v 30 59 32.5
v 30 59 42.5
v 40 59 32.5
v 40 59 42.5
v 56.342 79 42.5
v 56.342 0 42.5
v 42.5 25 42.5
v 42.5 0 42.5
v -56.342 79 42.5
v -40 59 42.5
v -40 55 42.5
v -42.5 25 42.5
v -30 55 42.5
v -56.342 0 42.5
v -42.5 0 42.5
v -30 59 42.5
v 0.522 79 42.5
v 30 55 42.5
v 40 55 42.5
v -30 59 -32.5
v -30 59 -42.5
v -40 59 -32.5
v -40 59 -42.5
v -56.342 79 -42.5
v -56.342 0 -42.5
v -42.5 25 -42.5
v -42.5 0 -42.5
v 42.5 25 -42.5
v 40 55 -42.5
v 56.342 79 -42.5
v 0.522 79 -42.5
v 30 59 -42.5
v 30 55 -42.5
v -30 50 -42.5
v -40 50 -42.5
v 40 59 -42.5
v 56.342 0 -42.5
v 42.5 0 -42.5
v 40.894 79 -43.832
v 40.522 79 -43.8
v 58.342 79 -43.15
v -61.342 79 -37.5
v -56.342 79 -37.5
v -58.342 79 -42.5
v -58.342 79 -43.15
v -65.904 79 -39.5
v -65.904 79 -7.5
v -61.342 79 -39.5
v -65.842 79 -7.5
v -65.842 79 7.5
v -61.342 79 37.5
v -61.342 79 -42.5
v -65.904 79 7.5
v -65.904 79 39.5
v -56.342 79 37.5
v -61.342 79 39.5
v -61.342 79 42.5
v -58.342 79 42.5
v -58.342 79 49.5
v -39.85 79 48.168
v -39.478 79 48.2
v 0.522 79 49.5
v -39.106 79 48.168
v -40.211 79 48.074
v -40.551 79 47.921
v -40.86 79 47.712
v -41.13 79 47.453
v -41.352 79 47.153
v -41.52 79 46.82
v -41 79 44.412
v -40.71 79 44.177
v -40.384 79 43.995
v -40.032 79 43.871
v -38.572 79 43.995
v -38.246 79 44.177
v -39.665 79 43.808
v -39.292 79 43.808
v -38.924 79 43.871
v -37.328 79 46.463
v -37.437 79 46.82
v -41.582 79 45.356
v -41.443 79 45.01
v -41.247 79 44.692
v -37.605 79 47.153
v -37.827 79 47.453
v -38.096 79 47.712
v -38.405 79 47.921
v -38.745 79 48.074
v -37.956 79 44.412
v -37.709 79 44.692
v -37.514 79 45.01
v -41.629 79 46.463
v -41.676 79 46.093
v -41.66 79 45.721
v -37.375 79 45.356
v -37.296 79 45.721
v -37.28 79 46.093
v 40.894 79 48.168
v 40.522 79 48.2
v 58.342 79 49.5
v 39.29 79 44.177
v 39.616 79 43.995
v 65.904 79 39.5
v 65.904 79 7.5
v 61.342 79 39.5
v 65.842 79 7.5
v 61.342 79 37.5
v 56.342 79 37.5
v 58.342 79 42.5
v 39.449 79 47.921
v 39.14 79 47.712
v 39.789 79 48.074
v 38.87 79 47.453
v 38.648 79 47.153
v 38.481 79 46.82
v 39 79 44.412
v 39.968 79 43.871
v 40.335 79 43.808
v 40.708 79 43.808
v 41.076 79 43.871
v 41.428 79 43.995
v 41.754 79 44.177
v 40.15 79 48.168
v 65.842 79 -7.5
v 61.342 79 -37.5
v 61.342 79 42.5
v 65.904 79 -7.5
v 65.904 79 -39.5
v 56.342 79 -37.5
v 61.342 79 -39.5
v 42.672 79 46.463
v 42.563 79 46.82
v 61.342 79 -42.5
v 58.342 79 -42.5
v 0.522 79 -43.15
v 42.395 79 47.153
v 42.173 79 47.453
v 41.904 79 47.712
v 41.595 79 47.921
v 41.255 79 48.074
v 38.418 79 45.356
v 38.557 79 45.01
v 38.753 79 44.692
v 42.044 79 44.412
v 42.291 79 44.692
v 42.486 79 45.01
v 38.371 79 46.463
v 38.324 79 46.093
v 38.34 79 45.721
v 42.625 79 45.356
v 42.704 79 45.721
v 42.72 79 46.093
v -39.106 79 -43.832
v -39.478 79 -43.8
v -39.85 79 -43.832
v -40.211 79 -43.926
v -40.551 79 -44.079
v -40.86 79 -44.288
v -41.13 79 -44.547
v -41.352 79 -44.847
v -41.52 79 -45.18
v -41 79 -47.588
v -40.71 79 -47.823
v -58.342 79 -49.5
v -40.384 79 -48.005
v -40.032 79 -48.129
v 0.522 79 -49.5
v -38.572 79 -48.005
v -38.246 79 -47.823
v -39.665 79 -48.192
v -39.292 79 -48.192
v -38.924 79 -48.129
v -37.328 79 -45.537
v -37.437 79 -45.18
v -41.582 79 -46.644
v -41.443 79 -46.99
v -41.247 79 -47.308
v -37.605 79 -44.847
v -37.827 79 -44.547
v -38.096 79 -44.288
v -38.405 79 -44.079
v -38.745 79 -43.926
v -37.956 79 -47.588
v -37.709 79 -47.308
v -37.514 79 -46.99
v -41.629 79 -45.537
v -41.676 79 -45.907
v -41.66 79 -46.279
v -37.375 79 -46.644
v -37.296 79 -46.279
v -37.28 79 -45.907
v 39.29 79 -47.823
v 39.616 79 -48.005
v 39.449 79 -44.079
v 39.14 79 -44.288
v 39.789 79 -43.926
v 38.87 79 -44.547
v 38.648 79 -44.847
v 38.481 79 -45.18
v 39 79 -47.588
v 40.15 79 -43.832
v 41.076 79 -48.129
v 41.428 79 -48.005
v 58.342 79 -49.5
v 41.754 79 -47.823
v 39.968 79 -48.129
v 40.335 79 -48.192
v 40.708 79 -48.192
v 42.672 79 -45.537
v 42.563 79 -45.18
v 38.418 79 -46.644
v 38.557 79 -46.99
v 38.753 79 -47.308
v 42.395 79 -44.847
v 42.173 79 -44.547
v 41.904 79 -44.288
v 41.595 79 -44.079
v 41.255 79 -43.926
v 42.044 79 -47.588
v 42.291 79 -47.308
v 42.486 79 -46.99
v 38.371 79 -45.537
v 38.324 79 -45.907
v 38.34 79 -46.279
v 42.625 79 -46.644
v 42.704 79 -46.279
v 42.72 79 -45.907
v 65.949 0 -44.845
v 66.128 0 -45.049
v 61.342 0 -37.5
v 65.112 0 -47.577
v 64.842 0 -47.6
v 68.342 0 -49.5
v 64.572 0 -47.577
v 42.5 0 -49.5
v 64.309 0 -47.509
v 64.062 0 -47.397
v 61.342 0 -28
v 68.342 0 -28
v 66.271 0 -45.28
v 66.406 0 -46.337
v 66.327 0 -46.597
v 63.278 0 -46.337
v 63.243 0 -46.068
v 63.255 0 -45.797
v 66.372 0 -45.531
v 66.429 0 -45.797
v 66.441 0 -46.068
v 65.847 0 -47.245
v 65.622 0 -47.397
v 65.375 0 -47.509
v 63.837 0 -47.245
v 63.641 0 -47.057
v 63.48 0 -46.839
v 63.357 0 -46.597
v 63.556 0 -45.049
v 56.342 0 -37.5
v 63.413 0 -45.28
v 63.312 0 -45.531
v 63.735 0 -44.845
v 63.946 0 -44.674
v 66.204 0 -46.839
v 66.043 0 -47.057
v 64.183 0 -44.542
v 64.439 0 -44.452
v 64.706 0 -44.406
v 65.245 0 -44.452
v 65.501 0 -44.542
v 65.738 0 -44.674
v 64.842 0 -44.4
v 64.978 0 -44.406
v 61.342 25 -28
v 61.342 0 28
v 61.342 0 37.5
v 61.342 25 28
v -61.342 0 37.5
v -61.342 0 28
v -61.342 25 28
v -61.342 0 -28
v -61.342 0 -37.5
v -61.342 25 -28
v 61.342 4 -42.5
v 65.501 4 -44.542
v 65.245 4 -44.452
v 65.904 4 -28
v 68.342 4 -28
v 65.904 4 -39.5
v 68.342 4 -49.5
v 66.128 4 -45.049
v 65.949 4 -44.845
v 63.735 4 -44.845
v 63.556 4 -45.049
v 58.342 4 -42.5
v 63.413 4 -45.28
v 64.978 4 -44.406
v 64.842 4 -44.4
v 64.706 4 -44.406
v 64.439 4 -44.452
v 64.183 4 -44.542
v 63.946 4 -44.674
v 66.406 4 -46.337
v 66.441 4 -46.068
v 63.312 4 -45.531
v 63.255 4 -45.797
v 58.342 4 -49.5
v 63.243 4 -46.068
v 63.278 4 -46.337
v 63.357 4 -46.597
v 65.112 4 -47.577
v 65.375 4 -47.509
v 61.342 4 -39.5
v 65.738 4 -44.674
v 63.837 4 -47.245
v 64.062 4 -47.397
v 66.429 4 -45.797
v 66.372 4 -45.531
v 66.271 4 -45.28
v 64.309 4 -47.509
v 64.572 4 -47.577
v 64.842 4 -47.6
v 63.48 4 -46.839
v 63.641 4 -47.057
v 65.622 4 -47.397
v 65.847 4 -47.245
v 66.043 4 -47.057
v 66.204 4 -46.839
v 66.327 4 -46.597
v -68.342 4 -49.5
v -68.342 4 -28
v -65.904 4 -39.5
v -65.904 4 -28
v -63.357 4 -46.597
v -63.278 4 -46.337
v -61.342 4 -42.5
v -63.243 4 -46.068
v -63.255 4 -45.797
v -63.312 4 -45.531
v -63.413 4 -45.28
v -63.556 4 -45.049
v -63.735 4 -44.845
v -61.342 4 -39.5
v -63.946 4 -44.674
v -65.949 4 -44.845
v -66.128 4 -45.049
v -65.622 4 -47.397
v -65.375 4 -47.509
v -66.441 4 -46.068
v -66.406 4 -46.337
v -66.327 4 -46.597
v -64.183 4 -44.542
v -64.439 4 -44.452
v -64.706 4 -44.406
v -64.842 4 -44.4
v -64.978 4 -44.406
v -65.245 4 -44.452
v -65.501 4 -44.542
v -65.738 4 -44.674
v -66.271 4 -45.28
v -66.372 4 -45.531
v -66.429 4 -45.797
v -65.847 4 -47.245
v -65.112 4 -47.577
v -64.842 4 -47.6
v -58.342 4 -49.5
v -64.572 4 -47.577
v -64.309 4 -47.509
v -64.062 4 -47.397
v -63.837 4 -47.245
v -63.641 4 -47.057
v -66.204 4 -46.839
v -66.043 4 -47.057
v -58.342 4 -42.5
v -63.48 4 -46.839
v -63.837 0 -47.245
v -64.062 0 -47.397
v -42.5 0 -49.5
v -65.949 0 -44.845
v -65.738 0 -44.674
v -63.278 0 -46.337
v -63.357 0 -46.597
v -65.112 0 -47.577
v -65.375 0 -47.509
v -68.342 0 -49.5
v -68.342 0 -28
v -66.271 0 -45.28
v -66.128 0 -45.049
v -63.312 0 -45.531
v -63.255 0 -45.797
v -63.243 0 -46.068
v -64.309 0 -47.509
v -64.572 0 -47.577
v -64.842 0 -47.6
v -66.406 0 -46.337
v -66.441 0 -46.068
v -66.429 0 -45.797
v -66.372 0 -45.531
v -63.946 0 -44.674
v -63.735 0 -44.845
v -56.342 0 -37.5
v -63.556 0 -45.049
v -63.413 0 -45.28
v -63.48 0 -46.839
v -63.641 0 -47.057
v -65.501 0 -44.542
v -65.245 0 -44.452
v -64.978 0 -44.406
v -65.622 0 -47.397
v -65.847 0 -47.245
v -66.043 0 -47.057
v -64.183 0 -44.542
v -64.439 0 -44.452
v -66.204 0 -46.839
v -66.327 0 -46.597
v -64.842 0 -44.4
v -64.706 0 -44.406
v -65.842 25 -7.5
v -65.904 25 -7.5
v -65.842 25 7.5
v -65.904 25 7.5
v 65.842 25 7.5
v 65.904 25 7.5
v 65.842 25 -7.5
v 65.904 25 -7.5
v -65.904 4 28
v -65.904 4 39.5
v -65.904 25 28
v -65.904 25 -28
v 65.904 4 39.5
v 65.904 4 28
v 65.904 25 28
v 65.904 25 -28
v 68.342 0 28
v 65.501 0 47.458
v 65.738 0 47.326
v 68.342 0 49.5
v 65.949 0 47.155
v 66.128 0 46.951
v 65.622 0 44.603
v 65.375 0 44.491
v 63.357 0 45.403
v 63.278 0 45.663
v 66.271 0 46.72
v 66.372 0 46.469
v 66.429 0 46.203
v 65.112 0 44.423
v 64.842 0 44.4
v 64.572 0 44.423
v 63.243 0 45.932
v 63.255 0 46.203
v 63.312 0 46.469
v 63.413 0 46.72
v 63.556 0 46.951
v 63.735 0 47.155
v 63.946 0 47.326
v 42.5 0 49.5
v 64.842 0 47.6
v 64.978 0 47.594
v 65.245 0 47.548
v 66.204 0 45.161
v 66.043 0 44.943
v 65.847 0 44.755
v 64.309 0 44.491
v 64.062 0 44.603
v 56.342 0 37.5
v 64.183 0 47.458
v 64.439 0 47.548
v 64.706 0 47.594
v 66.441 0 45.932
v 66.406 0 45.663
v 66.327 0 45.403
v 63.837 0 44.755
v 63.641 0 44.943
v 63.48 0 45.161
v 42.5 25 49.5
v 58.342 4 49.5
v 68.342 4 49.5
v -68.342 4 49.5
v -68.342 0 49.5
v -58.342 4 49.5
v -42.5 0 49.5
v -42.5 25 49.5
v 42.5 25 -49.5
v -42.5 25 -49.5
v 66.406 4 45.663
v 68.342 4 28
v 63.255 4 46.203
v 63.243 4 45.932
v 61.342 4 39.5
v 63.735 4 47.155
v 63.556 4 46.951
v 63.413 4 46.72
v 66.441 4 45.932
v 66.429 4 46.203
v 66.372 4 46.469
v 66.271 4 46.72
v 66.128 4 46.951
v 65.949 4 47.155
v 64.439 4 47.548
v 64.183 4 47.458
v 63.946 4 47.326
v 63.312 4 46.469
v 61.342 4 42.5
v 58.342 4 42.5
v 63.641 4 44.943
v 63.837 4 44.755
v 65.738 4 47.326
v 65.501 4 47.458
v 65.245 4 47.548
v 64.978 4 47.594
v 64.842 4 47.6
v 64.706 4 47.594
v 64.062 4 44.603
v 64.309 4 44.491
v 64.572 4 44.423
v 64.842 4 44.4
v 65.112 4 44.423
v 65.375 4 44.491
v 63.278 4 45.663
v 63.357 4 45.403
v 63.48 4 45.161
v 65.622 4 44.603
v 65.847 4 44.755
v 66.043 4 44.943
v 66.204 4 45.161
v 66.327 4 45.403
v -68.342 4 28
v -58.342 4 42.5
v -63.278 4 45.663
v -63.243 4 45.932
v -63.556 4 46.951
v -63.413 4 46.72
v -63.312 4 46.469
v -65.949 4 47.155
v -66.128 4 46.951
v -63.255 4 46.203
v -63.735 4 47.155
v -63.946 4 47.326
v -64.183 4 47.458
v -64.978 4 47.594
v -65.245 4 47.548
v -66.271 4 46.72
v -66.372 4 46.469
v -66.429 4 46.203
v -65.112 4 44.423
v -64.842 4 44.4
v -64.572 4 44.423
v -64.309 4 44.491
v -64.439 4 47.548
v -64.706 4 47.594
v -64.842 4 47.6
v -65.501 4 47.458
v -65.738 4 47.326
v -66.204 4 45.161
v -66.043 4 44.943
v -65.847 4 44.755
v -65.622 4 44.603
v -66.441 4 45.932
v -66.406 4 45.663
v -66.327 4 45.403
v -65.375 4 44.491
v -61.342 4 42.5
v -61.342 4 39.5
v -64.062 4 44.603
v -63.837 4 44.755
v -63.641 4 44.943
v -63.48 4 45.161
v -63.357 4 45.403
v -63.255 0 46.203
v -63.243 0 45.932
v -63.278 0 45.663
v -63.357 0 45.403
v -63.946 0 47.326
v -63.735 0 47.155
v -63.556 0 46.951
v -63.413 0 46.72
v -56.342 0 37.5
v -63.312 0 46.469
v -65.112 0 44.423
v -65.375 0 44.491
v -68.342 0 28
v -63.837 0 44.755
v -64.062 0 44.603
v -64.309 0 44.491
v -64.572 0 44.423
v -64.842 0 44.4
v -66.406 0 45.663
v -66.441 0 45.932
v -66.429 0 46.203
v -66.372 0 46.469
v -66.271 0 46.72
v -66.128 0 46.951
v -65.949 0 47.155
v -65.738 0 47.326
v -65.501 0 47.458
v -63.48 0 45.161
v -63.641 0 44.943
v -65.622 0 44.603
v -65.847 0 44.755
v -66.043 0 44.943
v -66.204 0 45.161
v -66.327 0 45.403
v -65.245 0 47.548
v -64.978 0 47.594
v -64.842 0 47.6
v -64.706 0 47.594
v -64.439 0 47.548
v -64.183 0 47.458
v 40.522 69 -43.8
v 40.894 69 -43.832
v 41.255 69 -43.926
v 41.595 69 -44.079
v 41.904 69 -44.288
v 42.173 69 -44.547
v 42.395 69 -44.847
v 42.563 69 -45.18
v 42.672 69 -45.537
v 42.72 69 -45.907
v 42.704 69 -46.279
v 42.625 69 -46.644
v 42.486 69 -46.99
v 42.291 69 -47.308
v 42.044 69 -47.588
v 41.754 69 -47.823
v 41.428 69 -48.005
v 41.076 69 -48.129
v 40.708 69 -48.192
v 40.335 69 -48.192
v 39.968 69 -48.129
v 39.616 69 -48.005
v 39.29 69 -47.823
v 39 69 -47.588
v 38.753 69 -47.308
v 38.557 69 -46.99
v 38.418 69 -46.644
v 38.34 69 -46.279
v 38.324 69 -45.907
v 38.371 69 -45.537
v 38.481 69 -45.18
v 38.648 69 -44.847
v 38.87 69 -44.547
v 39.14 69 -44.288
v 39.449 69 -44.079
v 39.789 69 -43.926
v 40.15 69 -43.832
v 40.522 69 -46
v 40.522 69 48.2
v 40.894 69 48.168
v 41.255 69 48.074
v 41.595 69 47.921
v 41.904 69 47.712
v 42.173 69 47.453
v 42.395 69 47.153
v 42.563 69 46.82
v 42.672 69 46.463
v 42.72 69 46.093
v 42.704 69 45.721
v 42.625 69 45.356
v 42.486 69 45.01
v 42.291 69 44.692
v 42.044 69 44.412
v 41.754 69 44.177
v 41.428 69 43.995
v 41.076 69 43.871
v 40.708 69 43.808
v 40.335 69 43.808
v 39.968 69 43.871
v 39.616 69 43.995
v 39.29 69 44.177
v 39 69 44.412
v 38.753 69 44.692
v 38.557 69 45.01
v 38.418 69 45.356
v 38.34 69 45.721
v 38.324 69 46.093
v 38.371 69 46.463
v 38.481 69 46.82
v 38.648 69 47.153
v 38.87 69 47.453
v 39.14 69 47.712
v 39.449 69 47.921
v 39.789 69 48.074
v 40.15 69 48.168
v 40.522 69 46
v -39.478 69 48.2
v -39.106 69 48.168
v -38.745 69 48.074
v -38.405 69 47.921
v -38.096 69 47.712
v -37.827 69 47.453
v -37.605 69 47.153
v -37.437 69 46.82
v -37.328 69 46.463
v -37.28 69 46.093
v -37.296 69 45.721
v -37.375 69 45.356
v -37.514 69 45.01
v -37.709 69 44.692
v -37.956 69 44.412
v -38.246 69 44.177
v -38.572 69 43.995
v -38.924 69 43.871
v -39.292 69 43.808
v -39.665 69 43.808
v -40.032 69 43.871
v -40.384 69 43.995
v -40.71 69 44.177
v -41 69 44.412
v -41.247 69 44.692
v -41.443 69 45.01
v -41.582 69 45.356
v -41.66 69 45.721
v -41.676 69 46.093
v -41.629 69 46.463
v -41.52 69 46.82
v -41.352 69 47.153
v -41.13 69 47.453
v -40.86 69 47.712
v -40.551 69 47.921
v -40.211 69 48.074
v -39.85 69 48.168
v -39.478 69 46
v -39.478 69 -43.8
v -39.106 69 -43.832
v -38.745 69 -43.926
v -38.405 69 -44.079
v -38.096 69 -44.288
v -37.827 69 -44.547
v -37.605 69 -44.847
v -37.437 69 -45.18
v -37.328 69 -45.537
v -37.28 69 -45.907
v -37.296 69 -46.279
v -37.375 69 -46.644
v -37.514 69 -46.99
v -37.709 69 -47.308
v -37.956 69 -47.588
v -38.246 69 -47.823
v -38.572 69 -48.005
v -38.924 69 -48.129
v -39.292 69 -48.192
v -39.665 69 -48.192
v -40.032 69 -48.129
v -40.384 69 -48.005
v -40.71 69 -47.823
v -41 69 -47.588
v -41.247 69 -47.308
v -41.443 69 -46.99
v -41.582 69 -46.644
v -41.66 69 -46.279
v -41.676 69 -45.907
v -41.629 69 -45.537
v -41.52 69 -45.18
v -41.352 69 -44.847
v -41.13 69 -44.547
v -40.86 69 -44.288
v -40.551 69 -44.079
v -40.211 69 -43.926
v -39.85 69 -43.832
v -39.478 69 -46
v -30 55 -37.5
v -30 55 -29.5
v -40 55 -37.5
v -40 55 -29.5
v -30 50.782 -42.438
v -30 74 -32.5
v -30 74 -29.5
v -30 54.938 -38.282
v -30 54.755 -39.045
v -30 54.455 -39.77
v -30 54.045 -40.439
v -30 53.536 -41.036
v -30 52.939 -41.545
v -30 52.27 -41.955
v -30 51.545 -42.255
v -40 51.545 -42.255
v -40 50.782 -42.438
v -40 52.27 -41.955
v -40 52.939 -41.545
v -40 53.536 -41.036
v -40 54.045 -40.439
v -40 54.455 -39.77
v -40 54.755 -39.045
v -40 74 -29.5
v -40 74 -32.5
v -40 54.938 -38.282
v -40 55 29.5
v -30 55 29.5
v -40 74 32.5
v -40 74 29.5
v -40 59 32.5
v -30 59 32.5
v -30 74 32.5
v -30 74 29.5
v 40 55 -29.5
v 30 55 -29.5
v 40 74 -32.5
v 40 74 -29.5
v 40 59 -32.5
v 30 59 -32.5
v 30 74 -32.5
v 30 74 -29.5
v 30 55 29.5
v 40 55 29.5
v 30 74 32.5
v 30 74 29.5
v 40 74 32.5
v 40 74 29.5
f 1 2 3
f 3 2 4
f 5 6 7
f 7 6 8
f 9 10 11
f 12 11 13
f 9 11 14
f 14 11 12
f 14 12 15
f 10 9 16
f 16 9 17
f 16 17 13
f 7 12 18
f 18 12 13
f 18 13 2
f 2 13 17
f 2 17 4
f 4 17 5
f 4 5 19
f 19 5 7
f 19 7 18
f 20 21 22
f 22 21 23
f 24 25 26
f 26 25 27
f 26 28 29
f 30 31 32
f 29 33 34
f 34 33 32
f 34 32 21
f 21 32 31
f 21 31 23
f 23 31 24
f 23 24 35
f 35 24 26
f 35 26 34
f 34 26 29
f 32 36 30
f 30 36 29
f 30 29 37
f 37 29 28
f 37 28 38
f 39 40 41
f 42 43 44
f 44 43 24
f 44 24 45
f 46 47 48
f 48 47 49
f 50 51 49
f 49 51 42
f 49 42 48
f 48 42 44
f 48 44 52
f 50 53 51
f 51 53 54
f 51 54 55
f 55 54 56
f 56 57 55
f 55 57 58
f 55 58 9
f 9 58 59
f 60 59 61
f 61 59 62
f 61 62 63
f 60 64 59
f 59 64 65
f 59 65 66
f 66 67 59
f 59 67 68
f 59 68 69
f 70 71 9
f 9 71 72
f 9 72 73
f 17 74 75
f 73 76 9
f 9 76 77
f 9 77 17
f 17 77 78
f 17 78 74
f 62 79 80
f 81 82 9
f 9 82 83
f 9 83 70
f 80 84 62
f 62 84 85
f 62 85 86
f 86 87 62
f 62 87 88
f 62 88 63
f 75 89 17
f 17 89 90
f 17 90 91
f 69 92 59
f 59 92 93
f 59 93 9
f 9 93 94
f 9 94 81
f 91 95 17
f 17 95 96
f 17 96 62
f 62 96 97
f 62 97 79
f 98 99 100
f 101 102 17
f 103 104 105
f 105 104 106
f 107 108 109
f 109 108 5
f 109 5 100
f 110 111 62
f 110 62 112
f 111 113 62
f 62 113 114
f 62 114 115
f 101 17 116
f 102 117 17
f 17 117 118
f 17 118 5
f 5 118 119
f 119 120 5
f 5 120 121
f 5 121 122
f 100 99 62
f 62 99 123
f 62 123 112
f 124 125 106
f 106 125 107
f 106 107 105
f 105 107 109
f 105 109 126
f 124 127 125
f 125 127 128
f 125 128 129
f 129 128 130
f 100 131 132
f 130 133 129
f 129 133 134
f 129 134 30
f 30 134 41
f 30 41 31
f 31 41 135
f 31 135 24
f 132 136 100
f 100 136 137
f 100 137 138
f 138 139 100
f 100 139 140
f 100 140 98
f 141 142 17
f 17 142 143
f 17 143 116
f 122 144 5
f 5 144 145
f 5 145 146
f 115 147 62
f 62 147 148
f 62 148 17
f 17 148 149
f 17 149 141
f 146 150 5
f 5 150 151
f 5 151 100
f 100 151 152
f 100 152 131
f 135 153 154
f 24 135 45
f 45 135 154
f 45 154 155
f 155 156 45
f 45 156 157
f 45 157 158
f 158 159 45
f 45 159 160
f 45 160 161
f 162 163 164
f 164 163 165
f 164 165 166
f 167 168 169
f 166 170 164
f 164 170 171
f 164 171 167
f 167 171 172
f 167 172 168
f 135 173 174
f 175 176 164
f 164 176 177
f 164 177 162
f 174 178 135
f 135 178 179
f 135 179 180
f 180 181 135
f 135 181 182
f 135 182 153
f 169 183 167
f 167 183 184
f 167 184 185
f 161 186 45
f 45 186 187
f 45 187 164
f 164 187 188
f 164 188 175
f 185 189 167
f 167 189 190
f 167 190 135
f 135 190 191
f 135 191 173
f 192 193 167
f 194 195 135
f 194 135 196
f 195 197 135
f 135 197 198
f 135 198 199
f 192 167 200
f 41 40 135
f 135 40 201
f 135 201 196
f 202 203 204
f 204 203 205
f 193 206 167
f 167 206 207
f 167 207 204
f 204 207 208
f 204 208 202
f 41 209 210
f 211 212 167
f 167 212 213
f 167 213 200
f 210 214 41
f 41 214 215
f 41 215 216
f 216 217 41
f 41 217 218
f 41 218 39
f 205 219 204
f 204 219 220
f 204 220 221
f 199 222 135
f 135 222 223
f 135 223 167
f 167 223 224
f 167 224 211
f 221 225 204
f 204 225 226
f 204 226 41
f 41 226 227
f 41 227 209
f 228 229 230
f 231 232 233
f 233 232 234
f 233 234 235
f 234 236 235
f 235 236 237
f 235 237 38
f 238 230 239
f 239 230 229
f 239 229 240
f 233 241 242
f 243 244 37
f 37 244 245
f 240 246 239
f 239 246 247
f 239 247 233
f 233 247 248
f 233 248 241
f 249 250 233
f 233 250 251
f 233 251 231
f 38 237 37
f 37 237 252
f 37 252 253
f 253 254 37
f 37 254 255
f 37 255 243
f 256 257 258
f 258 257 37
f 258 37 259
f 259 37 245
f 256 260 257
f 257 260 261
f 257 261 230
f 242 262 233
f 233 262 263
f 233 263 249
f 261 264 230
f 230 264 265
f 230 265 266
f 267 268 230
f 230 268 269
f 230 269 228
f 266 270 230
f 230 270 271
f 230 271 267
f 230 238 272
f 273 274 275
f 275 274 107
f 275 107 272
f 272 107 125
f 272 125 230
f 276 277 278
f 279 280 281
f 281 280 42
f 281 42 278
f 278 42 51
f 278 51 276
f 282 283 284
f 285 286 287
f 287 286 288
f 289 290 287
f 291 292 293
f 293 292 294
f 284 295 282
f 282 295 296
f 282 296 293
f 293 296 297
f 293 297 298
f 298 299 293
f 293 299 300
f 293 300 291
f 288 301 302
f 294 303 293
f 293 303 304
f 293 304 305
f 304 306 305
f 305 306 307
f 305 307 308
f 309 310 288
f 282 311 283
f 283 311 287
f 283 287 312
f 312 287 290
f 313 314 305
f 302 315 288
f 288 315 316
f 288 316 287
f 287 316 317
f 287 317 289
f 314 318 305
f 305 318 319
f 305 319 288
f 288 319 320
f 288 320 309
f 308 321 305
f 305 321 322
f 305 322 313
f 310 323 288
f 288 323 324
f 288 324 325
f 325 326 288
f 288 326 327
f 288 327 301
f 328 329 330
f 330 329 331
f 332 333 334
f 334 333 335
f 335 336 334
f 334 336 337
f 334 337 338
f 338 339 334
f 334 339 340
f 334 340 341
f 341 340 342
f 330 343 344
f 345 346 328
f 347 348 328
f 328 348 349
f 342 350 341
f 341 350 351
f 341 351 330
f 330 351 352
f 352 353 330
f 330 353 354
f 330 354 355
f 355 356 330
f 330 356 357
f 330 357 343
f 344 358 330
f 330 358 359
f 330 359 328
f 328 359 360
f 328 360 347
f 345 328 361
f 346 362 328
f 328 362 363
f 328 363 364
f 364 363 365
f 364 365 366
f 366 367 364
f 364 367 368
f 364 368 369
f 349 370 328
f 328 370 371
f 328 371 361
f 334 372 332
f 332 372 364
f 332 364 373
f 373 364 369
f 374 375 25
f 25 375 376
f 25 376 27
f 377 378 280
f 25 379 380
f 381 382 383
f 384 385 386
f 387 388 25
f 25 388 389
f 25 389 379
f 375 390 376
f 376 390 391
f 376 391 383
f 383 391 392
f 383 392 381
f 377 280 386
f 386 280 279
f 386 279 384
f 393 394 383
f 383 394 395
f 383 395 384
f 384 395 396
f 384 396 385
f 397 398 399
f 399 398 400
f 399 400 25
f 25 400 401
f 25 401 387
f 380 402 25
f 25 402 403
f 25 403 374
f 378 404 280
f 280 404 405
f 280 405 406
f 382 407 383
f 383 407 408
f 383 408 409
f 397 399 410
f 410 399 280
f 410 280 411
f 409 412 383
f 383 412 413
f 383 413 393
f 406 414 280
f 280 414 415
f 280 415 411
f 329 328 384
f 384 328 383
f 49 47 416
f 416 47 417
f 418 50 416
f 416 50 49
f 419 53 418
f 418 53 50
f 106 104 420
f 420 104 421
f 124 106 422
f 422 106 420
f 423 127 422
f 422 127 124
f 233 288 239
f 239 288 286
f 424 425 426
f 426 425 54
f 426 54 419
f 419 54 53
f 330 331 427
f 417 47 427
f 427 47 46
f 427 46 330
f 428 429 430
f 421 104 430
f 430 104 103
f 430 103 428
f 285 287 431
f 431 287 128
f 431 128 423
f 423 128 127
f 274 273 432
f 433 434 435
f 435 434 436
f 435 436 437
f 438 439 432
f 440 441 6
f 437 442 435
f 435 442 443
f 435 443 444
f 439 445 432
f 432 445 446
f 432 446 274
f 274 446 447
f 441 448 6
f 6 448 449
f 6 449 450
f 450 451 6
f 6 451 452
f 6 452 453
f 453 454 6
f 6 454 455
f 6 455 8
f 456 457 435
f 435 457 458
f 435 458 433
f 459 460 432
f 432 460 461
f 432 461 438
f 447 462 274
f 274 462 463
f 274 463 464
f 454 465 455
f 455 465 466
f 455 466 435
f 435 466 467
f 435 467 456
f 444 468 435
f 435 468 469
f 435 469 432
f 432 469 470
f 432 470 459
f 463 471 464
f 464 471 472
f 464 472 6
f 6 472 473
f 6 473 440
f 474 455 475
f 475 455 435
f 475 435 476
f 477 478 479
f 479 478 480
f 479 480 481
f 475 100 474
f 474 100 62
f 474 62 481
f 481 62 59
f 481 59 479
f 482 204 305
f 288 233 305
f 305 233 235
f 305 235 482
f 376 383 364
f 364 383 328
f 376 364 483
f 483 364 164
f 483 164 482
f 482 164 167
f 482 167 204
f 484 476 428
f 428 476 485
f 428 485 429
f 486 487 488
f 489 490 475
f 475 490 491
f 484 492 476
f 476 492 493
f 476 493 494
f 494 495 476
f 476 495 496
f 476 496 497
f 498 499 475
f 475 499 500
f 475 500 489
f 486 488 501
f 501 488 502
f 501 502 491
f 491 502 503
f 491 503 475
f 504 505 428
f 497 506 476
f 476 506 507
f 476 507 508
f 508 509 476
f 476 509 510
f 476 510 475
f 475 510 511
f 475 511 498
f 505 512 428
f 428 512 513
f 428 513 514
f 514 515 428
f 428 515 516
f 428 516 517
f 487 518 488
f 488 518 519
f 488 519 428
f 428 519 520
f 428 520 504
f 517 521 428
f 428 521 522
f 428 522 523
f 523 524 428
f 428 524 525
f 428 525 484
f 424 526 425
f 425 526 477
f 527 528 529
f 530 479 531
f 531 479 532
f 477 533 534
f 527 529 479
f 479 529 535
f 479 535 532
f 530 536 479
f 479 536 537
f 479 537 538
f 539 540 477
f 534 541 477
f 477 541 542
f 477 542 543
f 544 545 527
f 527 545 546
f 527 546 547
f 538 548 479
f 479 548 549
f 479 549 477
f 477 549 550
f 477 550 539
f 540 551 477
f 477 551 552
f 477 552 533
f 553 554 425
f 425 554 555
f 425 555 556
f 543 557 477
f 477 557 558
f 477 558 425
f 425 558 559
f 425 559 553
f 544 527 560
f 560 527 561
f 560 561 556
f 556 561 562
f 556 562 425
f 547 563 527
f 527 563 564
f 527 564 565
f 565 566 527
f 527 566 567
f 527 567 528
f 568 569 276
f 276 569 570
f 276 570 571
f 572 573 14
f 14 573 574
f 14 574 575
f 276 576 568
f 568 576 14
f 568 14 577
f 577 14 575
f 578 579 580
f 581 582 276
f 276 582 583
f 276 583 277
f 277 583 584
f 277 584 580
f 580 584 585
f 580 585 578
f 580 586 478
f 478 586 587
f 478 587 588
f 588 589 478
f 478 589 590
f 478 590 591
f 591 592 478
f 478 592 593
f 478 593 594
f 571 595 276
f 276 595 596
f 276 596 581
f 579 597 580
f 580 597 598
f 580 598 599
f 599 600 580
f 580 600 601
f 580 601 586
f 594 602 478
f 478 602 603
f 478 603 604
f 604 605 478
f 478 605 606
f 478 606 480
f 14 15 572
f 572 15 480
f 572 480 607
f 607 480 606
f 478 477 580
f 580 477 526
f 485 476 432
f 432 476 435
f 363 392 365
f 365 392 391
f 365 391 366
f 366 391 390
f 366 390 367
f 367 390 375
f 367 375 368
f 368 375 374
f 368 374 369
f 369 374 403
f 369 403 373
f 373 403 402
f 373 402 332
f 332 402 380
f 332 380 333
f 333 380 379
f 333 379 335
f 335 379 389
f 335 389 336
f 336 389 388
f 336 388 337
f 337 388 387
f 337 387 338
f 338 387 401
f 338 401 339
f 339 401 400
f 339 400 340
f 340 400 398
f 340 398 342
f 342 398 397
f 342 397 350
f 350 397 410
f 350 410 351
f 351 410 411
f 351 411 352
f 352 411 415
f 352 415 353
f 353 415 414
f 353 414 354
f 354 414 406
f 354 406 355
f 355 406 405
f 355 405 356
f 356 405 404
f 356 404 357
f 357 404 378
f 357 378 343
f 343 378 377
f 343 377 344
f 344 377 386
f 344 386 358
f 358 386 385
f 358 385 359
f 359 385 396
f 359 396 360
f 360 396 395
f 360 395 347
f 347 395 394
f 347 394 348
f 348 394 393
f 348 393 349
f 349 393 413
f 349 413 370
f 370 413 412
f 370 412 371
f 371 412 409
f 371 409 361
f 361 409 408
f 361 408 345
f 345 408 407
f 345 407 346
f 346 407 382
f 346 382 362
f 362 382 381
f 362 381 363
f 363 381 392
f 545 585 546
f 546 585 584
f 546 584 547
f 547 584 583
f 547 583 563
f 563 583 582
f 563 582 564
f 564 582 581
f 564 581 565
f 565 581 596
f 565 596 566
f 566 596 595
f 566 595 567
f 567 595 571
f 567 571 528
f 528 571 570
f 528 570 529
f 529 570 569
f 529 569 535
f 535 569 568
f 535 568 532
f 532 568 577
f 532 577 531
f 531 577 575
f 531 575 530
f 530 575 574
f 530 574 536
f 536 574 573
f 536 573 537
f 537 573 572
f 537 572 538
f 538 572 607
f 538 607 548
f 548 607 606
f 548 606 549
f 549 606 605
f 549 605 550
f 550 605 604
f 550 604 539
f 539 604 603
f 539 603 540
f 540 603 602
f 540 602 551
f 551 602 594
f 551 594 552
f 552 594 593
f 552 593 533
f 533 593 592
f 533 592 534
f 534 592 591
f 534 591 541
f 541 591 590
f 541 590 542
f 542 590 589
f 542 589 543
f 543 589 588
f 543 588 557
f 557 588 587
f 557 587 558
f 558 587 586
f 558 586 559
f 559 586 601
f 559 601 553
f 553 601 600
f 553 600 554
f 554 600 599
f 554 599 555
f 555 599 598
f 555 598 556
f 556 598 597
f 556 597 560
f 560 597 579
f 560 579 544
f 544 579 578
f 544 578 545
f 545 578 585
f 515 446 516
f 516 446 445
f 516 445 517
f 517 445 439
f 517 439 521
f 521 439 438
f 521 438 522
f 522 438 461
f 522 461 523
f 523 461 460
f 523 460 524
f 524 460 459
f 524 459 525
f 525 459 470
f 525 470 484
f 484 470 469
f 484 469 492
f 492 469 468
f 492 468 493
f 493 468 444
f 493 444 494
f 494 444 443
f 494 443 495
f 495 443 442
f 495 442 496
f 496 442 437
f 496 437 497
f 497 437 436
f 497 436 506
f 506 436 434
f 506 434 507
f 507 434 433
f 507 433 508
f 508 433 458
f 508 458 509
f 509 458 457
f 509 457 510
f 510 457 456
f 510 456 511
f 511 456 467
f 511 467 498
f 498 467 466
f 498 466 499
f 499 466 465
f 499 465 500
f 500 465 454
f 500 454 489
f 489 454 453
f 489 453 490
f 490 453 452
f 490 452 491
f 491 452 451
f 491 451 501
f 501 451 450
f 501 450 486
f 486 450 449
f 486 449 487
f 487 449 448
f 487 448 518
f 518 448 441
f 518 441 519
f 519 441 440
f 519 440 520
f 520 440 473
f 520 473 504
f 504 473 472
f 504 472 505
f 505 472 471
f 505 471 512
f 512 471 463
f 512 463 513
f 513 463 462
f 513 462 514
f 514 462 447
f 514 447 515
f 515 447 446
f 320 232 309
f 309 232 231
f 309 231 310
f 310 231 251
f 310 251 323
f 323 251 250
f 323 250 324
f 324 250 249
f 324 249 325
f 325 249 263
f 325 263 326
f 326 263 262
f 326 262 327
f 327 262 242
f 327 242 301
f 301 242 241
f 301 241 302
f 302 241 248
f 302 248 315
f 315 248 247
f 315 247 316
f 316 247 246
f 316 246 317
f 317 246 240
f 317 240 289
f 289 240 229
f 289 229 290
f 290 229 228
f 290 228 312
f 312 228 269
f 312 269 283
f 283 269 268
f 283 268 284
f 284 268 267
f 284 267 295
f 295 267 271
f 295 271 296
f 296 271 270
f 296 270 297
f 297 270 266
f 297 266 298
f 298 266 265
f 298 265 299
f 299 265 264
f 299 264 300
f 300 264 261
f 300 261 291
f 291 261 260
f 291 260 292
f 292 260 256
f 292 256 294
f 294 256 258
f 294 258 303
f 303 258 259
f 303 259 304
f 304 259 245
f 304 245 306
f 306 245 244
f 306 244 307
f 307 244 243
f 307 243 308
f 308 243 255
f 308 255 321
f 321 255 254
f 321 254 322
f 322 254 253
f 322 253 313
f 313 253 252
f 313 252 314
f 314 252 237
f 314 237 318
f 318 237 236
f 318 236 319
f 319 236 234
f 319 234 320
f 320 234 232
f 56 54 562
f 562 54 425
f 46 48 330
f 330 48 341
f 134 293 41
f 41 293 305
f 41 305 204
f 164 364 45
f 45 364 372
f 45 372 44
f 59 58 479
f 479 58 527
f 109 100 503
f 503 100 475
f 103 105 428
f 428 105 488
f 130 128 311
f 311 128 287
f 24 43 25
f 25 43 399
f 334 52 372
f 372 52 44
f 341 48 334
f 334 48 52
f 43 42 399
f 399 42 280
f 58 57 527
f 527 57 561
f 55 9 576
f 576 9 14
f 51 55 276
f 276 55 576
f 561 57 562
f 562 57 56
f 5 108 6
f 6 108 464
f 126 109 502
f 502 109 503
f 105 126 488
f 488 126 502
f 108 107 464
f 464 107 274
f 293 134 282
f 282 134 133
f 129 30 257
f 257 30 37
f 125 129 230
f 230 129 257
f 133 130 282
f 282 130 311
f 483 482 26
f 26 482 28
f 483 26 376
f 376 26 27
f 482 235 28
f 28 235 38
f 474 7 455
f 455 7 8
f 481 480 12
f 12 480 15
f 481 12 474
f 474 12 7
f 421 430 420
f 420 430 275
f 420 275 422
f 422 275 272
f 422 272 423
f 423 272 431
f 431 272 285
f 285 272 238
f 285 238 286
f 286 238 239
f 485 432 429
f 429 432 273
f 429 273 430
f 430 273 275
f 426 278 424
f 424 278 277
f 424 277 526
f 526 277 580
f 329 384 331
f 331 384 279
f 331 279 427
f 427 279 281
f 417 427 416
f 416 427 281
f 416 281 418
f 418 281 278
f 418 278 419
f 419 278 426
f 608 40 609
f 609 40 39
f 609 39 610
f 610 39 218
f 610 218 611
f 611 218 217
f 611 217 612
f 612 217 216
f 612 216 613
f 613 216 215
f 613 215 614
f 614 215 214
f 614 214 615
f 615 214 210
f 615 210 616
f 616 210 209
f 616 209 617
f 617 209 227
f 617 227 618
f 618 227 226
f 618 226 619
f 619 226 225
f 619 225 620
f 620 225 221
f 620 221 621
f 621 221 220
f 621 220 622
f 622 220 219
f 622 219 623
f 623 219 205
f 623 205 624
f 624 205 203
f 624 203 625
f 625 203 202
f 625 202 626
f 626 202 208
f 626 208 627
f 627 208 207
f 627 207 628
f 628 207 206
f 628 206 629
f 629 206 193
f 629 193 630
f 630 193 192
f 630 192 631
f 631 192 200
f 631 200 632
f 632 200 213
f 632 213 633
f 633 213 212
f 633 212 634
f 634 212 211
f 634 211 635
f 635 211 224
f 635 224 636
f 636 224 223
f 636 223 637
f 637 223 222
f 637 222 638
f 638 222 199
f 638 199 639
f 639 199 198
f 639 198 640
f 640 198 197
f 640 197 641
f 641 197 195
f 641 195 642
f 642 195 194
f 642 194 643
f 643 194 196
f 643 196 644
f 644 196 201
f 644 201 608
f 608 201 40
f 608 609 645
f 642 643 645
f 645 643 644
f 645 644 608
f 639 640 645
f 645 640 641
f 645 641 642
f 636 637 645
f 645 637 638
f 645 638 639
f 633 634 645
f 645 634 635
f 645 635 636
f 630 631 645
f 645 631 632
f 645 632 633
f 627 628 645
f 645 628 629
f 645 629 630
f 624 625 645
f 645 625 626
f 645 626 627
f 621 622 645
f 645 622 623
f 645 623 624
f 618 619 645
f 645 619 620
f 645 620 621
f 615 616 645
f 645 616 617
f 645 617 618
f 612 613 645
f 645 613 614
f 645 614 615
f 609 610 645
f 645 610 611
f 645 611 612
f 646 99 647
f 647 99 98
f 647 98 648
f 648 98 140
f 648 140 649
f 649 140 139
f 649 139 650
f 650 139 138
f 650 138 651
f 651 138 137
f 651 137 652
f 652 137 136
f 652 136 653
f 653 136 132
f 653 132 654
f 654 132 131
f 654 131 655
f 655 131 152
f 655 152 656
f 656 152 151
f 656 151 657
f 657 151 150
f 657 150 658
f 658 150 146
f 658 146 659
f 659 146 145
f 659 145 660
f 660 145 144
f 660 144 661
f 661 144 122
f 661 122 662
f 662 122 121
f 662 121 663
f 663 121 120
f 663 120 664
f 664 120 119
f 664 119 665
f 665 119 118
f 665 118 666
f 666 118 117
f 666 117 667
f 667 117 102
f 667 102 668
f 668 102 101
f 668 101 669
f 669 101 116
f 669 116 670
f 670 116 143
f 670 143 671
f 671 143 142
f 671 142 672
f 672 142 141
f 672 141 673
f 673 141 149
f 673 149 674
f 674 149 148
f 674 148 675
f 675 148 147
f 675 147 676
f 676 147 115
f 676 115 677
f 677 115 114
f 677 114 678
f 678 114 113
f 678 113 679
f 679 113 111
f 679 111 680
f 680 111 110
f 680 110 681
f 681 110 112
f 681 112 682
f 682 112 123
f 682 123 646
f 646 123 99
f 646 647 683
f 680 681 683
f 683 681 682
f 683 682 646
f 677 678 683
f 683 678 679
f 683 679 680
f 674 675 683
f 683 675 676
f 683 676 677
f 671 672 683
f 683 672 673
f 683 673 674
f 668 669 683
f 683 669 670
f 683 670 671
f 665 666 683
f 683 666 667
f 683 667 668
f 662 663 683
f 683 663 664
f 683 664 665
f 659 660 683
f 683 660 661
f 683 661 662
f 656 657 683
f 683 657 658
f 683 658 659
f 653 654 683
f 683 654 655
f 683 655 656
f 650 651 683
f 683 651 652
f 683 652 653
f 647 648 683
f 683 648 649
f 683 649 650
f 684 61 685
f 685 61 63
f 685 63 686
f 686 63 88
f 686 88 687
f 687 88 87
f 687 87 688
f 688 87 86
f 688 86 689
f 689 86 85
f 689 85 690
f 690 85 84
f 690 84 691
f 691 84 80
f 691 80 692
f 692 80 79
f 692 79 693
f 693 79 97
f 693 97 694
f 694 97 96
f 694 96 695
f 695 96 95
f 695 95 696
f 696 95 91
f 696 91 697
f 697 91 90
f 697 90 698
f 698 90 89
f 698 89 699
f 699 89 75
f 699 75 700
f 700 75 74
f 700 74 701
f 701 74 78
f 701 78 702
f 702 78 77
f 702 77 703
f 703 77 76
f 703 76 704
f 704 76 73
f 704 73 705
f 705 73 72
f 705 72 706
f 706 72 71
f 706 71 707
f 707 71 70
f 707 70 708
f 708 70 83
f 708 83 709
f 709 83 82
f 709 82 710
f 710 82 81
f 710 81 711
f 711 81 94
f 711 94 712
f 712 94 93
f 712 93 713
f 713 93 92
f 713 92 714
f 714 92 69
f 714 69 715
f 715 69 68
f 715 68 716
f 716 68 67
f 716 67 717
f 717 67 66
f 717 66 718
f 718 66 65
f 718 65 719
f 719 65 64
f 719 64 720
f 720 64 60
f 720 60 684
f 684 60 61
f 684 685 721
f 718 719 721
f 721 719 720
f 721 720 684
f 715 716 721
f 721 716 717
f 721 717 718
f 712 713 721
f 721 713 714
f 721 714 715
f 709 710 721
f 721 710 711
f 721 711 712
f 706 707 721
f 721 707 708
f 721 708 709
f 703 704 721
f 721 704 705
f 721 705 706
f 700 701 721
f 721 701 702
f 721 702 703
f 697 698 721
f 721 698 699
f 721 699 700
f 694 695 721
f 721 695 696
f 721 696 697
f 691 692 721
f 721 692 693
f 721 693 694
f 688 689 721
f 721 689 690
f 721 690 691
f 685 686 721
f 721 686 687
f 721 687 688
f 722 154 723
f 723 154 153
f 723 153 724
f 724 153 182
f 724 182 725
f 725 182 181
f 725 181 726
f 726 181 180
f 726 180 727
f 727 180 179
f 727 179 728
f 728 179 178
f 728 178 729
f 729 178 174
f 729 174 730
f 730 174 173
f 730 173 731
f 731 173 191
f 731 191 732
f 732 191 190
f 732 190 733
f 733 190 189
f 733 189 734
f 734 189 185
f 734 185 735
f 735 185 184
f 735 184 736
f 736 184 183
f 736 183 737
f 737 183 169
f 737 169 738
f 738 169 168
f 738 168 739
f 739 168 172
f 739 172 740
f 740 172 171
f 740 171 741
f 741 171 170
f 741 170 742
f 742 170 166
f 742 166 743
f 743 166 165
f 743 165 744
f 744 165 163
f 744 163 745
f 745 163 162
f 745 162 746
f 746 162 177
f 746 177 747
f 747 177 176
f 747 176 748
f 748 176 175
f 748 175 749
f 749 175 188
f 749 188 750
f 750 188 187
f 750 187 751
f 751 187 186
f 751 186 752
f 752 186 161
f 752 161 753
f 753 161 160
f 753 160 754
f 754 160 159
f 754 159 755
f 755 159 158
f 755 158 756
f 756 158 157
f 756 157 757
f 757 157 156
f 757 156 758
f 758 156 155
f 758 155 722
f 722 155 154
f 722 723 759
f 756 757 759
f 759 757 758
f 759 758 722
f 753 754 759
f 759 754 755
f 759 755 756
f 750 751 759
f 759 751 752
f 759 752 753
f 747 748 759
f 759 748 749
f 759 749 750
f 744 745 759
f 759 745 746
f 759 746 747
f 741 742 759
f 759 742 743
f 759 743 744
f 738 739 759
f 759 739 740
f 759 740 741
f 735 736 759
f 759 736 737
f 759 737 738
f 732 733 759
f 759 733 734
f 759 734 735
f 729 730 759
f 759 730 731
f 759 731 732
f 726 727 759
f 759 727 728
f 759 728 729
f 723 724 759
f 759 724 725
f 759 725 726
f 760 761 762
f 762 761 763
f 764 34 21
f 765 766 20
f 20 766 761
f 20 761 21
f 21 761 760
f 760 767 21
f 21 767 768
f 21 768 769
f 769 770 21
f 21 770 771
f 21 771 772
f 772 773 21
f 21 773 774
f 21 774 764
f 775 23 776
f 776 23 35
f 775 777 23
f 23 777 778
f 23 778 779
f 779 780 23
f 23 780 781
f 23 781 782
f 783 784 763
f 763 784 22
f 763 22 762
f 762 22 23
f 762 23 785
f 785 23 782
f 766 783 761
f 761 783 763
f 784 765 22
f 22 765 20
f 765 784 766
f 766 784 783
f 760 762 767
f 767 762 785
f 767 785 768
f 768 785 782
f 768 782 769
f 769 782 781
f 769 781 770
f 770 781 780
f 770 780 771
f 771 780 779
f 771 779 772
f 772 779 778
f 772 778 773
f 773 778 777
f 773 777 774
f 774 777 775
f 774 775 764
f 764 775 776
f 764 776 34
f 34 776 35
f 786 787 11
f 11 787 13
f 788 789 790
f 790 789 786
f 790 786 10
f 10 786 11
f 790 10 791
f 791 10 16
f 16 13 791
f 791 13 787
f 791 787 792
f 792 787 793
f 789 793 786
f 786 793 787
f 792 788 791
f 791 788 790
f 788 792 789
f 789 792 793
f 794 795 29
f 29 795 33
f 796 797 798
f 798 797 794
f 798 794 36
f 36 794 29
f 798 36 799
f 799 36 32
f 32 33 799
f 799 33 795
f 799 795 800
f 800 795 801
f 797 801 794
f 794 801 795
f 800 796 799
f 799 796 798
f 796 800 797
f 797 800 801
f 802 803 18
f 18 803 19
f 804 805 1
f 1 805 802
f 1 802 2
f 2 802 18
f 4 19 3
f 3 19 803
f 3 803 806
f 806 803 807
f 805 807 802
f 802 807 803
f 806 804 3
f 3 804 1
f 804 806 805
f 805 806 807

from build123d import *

# Parameters (mm, degrees)
SKETCH1_W               = 122.684034766
SKETCH1_H               = 85
BOSS_EXTRUDE1_DEPTH     = 4
CUT_EXTRUDE3_REACH      = 86.48
SKETCH3_R               = 1.6
SKETCH4_W               = 116.684034766
SKETCH4_H               = 7
BOSS_EXTRUDE2_DEPTH     = 75
SKETCH1_3_W             = 5
SKETCH1_3_H             = 5
BOSS_EXTRUDE3_DEPTH     = 79
SKETCH5_W               = 85
SKETCH5_H               = 25
CUT_EXTRUDE4_DEPTH      = 144.918835946
CUT_EXTRUDE5_DEPTH      = 166.450220187
CUT_EXTRUDE5_DEPTH_BACK = 166.450220187
SKETCH6_W               = 56
SKETCH6_H               = 25
SKETCH7_R               = 2.2
CUT_EXTRUDE6_DEPTH      = 10
BOSS_EXTRUDE4_DEPTH     = 13
SKETCH9_W               = 10
SKETCH9_H               = 3
BOSS_EXTRUDE5_DEPTH     = 15
FILLET1_R               = 5
MIRROR2_COPY_1_DEPTH    = 13
MIRROR2_COPY_2_SKETCH_W = 10
MIRROR2_COPY_2_SKETCH_H = 3
MIRROR2_COPY_2_DEPTH    = 15


with BuildPart() as part:
    # Sketch1 → Boss-Extrude1 (new body)
    with BuildSketch(Plane(origin=(0, 0, 0), x_dir=(1, 0, 0), z_dir=(0, 1, 0))):
        Polygon((-68.342017383, -49.5), (68.342017383, -49.5), (68.342017383, -7.5), (65.842017383, -7.5), (65.842017383, 7.5), (68.342017383, 7.5), (68.342017383, 49.5), (-68.342017383, 49.5), (-68.342017383, 7.5), (-65.842017383, 7.5), (-65.842017383, -7.5), (-68.342017383, -7.5), align=None)
        Rectangle(SKETCH1_W, SKETCH1_H, mode=Mode.SUBTRACT)
    extrude(amount=BOSS_EXTRUDE1_DEPTH)

    # Sketch3 → Cut-Extrude3 (cut, up to next)
    with BuildSketch(Plane(origin=(0, 0, 0), x_dir=(1, 0, 0), z_dir=(0, 1, 0)), mode=Mode.PRIVATE) as cut_extrude3_sk1:
        with Locations((64.842017383, -46)):
            Circle(SKETCH3_R)
    cut_extrude3_tool1 = extrude(cut_extrude3_sk1.sketch, amount=CUT_EXTRUDE3_REACH, mode=Mode.PRIVATE) & part.part
    # Sketch3 → Cut-Extrude3 (cut, up to next)
    with BuildSketch(Plane(origin=(0, 0, 0), x_dir=(1, 0, 0), z_dir=(0, 1, 0)), mode=Mode.PRIVATE) as cut_extrude3_sk2:
        with Locations((64.842017383, 46)):
            Circle(SKETCH3_R)
    cut_extrude3_tool2 = extrude(cut_extrude3_sk2.sketch, amount=CUT_EXTRUDE3_REACH, mode=Mode.PRIVATE) & part.part
    # Sketch3 → Cut-Extrude3 (cut, up to next)
    with BuildSketch(Plane(origin=(0, 0, 0), x_dir=(1, 0, 0), z_dir=(0, 1, 0)), mode=Mode.PRIVATE) as cut_extrude3_sk3:
        with Locations((-64.842017383, 46)):
            Circle(SKETCH3_R)
    cut_extrude3_tool3 = extrude(cut_extrude3_sk3.sketch, amount=CUT_EXTRUDE3_REACH, mode=Mode.PRIVATE) & part.part
    # Sketch3 → Cut-Extrude3 (cut, up to next)
    with BuildSketch(Plane(origin=(0, 0, 0), x_dir=(1, 0, 0), z_dir=(0, 1, 0)), mode=Mode.PRIVATE) as cut_extrude3_sk4:
        with Locations((-64.842017383, -46)):
            Circle(SKETCH3_R)
    cut_extrude3_tool4 = extrude(cut_extrude3_sk4.sketch, amount=CUT_EXTRUDE3_REACH, mode=Mode.PRIVATE) & part.part
    add(cut_extrude3_tool1.solids().sort_by_distance((64.842017, 0, 46))[0], mode=Mode.SUBTRACT)
    add(cut_extrude3_tool2.solids().sort_by_distance((64.842017, 0, -46))[0], mode=Mode.SUBTRACT)
    add(cut_extrude3_tool3.solids().sort_by_distance((-64.842017, 0, -46))[0], mode=Mode.SUBTRACT)
    add(cut_extrude3_tool4.solids().sort_by_distance((-64.842017, 0, 46))[0], mode=Mode.SUBTRACT)

    # Sketch4 → Boss-Extrude2 (add)
    with BuildSketch(Plane(origin=(0, 4, 0), x_dir=(1, 0, 0), z_dir=(0, 1, 0))):
        with Locations((0, 46)):
            Rectangle(SKETCH4_W, SKETCH4_H)
        Polygon((-61.342017383, -39.5), (-61.342017383, 39.5), (-65.904231228, 39.5), (-65.904231228, 7.5), (-65.842017383, 7.5), (-65.842017383, -7.5), (-65.904231228, -7.5), (-65.904231228, -39.5), align=None)
        Polygon((65.904231228, 39.5), (61.342017383, 39.5), (61.342017383, -39.5), (65.904231228, -39.5), (65.904231228, -7.5), (65.842017383, -7.5), (65.842017383, 7.5), (65.904231228, 7.5), align=None)
        with Locations((0, -46)):
            Rectangle(SKETCH4_W, SKETCH4_H)
    extrude(amount=BOSS_EXTRUDE2_DEPTH)

    # Sketch1<3> → Boss-Extrude3 (add)
    with BuildSketch(Plane(origin=(0, 0, 0), x_dir=(1, 0, 0), z_dir=(0, 1, 0))):
        with Locations((-58.842017383, -40)):
            Rectangle(SKETCH1_3_W, SKETCH1_3_H)
        with Locations((58.842017383, -40)):
            Rectangle(SKETCH1_3_W, SKETCH1_3_H)
        with Locations((-58.842017383, 40)):
            Rectangle(SKETCH1_3_W, SKETCH1_3_H)
        with Locations((58.842017383, 40)):
            Rectangle(SKETCH1_3_W, SKETCH1_3_H)
    extrude(amount=BOSS_EXTRUDE3_DEPTH)

    # Sketch5 → Cut-Extrude4 (cut, through all)
    with BuildSketch(Plane.XY.offset(49.5)):
        with Locations((0, 12.5)):
            Rectangle(SKETCH5_W, SKETCH5_H)
    extrude(amount=-CUT_EXTRUDE4_DEPTH, mode=Mode.SUBTRACT)

    # Sketch6 → Cut-Extrude5 (cut, two sides: drawn at the far end of the back side and taken through both)
    with BuildSketch(Plane(origin=(68.342017383, 0, 0), x_dir=(0, 0, -1), z_dir=(1, 0, 0)).offset(-CUT_EXTRUDE5_DEPTH_BACK)):
        with Locations((0, 12.5)):
            Rectangle(SKETCH6_W, SKETCH6_H)
    extrude(amount=CUT_EXTRUDE5_DEPTH + CUT_EXTRUDE5_DEPTH_BACK, mode=Mode.SUBTRACT)

    # Sketch7 → Cut-Extrude6 (cut)
    with BuildSketch(Plane(origin=(0, 79, 0), x_dir=(1, 0, 0), z_dir=(0, 1, 0))):
        with Locations((40.521857066, 46)):
            Circle(SKETCH7_R)
        with Locations((-39.478142934, 46)):
            Circle(SKETCH7_R)
        with Locations((-39.478142934, -46)):
            Circle(SKETCH7_R)
        with Locations((40.521857066, -46)):
            Circle(SKETCH7_R)
    extrude(amount=-CUT_EXTRUDE6_DEPTH, mode=Mode.SUBTRACT)

    # Sketch8 → Boss-Extrude4 (add)
    with BuildSketch(Plane.XY.offset(-42.5)):
        Polygon((-35, 59), (-40, 59), (-40, 55), (-30, 55), (-30, 59), align=None)
    boss_extrude4 = extrude(amount=BOSS_EXTRUDE4_DEPTH)

    # Sketch9 → Boss-Extrude5 (add)
    with BuildSketch(Plane(origin=(0, 59, 0), x_dir=(1, 0, 0), z_dir=(0, 1, 0))):
        with Locations((-35, 31)):
            Rectangle(SKETCH9_W, SKETCH9_H)
    boss_extrude5 = extrude(amount=BOSS_EXTRUDE5_DEPTH)

    # Fillet1
    fillet1_edges = [part.edges().sort_by_distance(p)[0] for p in [
        (-35, 55, -42.5),
    ]]
    fillet(fillet1_edges, radius=FILLET1_R)

    # Mirror1: Boss-Extrude4, Boss-Extrude5 across plane
    add(boss_extrude4.mirror(Plane.XY))
    add(boss_extrude5.mirror(Plane.XY))

    # Mirror2: Boss-Extrude4, Boss-Extrude5 across plane
    add(boss_extrude4.mirror(Plane(origin=(0, 0, 0), x_dir=(0, 0, 1), z_dir=(1, 0, 0))))
    add(boss_extrude5.mirror(Plane(origin=(0, 0, 0), x_dir=(0, 0, 1), z_dir=(1, 0, 0))))

    # Mirror2 copy 1 sketch → Mirror2 copy 1 (add)
    with BuildSketch(Plane(origin=(0, 0, 42.5), x_dir=(-1, 0, 0), z_dir=(0, 0, -1))):
        Polygon((-35, 59), (-40, 59), (-40, 55), (-30, 55), (-30, 59), align=None)
    extrude(amount=MIRROR2_COPY_1_DEPTH)

    # Mirror2 copy 2 sketch → Mirror2 copy 2 (add)
    with BuildSketch(Plane(origin=(0, 59, 0), x_dir=(-1, 0, 0), z_dir=(0, 1, 0))):
        with Locations((-35, 31)):
            Rectangle(MIRROR2_COPY_2_SKETCH_W, MIRROR2_COPY_2_SKETCH_H)
    extrude(amount=MIRROR2_COPY_2_DEPTH)


solid = part.part
